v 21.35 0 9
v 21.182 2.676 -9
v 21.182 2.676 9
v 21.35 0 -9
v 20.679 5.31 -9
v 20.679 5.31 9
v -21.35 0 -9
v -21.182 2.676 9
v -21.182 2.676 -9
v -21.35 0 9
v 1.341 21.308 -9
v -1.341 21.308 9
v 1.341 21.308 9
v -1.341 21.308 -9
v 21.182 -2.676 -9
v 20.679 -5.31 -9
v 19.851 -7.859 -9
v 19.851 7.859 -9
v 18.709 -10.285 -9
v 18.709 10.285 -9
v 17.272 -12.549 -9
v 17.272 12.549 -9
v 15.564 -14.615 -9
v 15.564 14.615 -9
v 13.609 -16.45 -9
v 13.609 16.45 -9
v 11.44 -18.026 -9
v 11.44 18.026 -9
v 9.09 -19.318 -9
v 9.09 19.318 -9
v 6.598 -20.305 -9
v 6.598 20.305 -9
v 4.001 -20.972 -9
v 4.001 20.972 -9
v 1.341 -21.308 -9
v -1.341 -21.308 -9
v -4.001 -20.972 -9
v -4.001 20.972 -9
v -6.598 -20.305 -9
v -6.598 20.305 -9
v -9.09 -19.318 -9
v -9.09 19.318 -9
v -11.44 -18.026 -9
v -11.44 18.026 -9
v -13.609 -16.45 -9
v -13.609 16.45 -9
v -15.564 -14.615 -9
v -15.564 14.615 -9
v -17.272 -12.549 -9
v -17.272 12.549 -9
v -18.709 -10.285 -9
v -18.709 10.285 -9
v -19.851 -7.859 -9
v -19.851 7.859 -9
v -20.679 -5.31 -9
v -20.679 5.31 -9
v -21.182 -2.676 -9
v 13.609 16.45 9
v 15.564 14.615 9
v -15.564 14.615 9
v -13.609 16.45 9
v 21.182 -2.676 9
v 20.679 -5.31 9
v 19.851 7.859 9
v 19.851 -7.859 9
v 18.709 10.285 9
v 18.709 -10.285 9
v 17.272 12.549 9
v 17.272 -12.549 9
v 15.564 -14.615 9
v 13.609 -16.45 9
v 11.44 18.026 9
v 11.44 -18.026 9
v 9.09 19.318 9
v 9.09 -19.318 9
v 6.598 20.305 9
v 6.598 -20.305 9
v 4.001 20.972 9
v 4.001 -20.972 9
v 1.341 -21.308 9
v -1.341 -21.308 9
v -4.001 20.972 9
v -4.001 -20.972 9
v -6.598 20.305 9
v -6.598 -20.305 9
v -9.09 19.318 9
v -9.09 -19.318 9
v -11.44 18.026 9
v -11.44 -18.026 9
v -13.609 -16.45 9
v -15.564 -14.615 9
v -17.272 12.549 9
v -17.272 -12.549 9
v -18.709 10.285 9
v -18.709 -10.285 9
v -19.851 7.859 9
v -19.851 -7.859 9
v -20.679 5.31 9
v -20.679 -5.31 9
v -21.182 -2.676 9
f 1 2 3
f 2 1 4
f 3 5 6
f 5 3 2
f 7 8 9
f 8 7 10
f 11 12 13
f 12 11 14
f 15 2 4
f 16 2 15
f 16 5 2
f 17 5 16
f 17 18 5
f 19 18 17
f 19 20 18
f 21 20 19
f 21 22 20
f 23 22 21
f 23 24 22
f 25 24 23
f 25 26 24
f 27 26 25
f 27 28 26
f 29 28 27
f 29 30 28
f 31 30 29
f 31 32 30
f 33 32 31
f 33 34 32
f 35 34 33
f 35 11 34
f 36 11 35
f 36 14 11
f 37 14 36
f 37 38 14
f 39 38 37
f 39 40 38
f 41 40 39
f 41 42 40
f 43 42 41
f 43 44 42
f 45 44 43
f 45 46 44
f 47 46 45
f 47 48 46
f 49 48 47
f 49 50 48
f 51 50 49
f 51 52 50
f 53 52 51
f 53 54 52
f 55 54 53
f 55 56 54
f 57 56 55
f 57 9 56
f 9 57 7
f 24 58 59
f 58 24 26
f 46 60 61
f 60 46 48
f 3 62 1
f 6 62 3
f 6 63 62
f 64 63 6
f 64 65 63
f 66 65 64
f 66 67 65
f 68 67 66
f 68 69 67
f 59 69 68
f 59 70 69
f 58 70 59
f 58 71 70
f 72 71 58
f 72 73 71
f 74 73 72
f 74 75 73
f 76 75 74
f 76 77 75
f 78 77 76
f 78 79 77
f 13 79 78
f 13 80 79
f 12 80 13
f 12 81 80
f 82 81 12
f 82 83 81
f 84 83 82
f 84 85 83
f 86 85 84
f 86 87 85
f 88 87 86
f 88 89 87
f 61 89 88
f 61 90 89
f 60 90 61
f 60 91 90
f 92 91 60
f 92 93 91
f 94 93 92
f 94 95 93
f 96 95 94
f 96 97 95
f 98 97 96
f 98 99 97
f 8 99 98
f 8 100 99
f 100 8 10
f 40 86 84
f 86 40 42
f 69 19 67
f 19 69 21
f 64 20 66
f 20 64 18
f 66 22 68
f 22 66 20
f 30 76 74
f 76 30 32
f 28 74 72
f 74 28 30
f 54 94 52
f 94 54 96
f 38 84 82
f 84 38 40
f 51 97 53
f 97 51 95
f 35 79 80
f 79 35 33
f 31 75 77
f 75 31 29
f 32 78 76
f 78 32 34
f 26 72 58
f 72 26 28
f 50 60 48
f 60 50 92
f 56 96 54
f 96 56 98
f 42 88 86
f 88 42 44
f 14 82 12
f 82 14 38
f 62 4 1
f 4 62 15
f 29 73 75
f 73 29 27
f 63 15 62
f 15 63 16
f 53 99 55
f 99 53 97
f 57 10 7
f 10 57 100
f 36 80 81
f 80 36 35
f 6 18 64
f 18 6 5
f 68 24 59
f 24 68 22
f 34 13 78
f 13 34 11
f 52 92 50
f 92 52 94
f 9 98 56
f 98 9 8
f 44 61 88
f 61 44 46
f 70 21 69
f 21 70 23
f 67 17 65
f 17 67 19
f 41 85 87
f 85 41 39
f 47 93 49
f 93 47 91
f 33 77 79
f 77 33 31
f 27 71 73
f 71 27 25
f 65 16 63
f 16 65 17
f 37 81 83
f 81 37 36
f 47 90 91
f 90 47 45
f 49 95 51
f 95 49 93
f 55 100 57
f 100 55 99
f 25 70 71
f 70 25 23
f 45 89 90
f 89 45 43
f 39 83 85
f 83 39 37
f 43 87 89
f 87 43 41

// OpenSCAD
$fn = 50;


difference() {
	union() {
		translate(v = [0, 0, -9.0000000000]) {
			cylinder(h = 18, r = 21.3500000000);
		}
	}
	union() {
		translate(v = [0, 0, -100.0000000000]) {
			cylinder(h = 200, r = 0);
		}
	}
}
